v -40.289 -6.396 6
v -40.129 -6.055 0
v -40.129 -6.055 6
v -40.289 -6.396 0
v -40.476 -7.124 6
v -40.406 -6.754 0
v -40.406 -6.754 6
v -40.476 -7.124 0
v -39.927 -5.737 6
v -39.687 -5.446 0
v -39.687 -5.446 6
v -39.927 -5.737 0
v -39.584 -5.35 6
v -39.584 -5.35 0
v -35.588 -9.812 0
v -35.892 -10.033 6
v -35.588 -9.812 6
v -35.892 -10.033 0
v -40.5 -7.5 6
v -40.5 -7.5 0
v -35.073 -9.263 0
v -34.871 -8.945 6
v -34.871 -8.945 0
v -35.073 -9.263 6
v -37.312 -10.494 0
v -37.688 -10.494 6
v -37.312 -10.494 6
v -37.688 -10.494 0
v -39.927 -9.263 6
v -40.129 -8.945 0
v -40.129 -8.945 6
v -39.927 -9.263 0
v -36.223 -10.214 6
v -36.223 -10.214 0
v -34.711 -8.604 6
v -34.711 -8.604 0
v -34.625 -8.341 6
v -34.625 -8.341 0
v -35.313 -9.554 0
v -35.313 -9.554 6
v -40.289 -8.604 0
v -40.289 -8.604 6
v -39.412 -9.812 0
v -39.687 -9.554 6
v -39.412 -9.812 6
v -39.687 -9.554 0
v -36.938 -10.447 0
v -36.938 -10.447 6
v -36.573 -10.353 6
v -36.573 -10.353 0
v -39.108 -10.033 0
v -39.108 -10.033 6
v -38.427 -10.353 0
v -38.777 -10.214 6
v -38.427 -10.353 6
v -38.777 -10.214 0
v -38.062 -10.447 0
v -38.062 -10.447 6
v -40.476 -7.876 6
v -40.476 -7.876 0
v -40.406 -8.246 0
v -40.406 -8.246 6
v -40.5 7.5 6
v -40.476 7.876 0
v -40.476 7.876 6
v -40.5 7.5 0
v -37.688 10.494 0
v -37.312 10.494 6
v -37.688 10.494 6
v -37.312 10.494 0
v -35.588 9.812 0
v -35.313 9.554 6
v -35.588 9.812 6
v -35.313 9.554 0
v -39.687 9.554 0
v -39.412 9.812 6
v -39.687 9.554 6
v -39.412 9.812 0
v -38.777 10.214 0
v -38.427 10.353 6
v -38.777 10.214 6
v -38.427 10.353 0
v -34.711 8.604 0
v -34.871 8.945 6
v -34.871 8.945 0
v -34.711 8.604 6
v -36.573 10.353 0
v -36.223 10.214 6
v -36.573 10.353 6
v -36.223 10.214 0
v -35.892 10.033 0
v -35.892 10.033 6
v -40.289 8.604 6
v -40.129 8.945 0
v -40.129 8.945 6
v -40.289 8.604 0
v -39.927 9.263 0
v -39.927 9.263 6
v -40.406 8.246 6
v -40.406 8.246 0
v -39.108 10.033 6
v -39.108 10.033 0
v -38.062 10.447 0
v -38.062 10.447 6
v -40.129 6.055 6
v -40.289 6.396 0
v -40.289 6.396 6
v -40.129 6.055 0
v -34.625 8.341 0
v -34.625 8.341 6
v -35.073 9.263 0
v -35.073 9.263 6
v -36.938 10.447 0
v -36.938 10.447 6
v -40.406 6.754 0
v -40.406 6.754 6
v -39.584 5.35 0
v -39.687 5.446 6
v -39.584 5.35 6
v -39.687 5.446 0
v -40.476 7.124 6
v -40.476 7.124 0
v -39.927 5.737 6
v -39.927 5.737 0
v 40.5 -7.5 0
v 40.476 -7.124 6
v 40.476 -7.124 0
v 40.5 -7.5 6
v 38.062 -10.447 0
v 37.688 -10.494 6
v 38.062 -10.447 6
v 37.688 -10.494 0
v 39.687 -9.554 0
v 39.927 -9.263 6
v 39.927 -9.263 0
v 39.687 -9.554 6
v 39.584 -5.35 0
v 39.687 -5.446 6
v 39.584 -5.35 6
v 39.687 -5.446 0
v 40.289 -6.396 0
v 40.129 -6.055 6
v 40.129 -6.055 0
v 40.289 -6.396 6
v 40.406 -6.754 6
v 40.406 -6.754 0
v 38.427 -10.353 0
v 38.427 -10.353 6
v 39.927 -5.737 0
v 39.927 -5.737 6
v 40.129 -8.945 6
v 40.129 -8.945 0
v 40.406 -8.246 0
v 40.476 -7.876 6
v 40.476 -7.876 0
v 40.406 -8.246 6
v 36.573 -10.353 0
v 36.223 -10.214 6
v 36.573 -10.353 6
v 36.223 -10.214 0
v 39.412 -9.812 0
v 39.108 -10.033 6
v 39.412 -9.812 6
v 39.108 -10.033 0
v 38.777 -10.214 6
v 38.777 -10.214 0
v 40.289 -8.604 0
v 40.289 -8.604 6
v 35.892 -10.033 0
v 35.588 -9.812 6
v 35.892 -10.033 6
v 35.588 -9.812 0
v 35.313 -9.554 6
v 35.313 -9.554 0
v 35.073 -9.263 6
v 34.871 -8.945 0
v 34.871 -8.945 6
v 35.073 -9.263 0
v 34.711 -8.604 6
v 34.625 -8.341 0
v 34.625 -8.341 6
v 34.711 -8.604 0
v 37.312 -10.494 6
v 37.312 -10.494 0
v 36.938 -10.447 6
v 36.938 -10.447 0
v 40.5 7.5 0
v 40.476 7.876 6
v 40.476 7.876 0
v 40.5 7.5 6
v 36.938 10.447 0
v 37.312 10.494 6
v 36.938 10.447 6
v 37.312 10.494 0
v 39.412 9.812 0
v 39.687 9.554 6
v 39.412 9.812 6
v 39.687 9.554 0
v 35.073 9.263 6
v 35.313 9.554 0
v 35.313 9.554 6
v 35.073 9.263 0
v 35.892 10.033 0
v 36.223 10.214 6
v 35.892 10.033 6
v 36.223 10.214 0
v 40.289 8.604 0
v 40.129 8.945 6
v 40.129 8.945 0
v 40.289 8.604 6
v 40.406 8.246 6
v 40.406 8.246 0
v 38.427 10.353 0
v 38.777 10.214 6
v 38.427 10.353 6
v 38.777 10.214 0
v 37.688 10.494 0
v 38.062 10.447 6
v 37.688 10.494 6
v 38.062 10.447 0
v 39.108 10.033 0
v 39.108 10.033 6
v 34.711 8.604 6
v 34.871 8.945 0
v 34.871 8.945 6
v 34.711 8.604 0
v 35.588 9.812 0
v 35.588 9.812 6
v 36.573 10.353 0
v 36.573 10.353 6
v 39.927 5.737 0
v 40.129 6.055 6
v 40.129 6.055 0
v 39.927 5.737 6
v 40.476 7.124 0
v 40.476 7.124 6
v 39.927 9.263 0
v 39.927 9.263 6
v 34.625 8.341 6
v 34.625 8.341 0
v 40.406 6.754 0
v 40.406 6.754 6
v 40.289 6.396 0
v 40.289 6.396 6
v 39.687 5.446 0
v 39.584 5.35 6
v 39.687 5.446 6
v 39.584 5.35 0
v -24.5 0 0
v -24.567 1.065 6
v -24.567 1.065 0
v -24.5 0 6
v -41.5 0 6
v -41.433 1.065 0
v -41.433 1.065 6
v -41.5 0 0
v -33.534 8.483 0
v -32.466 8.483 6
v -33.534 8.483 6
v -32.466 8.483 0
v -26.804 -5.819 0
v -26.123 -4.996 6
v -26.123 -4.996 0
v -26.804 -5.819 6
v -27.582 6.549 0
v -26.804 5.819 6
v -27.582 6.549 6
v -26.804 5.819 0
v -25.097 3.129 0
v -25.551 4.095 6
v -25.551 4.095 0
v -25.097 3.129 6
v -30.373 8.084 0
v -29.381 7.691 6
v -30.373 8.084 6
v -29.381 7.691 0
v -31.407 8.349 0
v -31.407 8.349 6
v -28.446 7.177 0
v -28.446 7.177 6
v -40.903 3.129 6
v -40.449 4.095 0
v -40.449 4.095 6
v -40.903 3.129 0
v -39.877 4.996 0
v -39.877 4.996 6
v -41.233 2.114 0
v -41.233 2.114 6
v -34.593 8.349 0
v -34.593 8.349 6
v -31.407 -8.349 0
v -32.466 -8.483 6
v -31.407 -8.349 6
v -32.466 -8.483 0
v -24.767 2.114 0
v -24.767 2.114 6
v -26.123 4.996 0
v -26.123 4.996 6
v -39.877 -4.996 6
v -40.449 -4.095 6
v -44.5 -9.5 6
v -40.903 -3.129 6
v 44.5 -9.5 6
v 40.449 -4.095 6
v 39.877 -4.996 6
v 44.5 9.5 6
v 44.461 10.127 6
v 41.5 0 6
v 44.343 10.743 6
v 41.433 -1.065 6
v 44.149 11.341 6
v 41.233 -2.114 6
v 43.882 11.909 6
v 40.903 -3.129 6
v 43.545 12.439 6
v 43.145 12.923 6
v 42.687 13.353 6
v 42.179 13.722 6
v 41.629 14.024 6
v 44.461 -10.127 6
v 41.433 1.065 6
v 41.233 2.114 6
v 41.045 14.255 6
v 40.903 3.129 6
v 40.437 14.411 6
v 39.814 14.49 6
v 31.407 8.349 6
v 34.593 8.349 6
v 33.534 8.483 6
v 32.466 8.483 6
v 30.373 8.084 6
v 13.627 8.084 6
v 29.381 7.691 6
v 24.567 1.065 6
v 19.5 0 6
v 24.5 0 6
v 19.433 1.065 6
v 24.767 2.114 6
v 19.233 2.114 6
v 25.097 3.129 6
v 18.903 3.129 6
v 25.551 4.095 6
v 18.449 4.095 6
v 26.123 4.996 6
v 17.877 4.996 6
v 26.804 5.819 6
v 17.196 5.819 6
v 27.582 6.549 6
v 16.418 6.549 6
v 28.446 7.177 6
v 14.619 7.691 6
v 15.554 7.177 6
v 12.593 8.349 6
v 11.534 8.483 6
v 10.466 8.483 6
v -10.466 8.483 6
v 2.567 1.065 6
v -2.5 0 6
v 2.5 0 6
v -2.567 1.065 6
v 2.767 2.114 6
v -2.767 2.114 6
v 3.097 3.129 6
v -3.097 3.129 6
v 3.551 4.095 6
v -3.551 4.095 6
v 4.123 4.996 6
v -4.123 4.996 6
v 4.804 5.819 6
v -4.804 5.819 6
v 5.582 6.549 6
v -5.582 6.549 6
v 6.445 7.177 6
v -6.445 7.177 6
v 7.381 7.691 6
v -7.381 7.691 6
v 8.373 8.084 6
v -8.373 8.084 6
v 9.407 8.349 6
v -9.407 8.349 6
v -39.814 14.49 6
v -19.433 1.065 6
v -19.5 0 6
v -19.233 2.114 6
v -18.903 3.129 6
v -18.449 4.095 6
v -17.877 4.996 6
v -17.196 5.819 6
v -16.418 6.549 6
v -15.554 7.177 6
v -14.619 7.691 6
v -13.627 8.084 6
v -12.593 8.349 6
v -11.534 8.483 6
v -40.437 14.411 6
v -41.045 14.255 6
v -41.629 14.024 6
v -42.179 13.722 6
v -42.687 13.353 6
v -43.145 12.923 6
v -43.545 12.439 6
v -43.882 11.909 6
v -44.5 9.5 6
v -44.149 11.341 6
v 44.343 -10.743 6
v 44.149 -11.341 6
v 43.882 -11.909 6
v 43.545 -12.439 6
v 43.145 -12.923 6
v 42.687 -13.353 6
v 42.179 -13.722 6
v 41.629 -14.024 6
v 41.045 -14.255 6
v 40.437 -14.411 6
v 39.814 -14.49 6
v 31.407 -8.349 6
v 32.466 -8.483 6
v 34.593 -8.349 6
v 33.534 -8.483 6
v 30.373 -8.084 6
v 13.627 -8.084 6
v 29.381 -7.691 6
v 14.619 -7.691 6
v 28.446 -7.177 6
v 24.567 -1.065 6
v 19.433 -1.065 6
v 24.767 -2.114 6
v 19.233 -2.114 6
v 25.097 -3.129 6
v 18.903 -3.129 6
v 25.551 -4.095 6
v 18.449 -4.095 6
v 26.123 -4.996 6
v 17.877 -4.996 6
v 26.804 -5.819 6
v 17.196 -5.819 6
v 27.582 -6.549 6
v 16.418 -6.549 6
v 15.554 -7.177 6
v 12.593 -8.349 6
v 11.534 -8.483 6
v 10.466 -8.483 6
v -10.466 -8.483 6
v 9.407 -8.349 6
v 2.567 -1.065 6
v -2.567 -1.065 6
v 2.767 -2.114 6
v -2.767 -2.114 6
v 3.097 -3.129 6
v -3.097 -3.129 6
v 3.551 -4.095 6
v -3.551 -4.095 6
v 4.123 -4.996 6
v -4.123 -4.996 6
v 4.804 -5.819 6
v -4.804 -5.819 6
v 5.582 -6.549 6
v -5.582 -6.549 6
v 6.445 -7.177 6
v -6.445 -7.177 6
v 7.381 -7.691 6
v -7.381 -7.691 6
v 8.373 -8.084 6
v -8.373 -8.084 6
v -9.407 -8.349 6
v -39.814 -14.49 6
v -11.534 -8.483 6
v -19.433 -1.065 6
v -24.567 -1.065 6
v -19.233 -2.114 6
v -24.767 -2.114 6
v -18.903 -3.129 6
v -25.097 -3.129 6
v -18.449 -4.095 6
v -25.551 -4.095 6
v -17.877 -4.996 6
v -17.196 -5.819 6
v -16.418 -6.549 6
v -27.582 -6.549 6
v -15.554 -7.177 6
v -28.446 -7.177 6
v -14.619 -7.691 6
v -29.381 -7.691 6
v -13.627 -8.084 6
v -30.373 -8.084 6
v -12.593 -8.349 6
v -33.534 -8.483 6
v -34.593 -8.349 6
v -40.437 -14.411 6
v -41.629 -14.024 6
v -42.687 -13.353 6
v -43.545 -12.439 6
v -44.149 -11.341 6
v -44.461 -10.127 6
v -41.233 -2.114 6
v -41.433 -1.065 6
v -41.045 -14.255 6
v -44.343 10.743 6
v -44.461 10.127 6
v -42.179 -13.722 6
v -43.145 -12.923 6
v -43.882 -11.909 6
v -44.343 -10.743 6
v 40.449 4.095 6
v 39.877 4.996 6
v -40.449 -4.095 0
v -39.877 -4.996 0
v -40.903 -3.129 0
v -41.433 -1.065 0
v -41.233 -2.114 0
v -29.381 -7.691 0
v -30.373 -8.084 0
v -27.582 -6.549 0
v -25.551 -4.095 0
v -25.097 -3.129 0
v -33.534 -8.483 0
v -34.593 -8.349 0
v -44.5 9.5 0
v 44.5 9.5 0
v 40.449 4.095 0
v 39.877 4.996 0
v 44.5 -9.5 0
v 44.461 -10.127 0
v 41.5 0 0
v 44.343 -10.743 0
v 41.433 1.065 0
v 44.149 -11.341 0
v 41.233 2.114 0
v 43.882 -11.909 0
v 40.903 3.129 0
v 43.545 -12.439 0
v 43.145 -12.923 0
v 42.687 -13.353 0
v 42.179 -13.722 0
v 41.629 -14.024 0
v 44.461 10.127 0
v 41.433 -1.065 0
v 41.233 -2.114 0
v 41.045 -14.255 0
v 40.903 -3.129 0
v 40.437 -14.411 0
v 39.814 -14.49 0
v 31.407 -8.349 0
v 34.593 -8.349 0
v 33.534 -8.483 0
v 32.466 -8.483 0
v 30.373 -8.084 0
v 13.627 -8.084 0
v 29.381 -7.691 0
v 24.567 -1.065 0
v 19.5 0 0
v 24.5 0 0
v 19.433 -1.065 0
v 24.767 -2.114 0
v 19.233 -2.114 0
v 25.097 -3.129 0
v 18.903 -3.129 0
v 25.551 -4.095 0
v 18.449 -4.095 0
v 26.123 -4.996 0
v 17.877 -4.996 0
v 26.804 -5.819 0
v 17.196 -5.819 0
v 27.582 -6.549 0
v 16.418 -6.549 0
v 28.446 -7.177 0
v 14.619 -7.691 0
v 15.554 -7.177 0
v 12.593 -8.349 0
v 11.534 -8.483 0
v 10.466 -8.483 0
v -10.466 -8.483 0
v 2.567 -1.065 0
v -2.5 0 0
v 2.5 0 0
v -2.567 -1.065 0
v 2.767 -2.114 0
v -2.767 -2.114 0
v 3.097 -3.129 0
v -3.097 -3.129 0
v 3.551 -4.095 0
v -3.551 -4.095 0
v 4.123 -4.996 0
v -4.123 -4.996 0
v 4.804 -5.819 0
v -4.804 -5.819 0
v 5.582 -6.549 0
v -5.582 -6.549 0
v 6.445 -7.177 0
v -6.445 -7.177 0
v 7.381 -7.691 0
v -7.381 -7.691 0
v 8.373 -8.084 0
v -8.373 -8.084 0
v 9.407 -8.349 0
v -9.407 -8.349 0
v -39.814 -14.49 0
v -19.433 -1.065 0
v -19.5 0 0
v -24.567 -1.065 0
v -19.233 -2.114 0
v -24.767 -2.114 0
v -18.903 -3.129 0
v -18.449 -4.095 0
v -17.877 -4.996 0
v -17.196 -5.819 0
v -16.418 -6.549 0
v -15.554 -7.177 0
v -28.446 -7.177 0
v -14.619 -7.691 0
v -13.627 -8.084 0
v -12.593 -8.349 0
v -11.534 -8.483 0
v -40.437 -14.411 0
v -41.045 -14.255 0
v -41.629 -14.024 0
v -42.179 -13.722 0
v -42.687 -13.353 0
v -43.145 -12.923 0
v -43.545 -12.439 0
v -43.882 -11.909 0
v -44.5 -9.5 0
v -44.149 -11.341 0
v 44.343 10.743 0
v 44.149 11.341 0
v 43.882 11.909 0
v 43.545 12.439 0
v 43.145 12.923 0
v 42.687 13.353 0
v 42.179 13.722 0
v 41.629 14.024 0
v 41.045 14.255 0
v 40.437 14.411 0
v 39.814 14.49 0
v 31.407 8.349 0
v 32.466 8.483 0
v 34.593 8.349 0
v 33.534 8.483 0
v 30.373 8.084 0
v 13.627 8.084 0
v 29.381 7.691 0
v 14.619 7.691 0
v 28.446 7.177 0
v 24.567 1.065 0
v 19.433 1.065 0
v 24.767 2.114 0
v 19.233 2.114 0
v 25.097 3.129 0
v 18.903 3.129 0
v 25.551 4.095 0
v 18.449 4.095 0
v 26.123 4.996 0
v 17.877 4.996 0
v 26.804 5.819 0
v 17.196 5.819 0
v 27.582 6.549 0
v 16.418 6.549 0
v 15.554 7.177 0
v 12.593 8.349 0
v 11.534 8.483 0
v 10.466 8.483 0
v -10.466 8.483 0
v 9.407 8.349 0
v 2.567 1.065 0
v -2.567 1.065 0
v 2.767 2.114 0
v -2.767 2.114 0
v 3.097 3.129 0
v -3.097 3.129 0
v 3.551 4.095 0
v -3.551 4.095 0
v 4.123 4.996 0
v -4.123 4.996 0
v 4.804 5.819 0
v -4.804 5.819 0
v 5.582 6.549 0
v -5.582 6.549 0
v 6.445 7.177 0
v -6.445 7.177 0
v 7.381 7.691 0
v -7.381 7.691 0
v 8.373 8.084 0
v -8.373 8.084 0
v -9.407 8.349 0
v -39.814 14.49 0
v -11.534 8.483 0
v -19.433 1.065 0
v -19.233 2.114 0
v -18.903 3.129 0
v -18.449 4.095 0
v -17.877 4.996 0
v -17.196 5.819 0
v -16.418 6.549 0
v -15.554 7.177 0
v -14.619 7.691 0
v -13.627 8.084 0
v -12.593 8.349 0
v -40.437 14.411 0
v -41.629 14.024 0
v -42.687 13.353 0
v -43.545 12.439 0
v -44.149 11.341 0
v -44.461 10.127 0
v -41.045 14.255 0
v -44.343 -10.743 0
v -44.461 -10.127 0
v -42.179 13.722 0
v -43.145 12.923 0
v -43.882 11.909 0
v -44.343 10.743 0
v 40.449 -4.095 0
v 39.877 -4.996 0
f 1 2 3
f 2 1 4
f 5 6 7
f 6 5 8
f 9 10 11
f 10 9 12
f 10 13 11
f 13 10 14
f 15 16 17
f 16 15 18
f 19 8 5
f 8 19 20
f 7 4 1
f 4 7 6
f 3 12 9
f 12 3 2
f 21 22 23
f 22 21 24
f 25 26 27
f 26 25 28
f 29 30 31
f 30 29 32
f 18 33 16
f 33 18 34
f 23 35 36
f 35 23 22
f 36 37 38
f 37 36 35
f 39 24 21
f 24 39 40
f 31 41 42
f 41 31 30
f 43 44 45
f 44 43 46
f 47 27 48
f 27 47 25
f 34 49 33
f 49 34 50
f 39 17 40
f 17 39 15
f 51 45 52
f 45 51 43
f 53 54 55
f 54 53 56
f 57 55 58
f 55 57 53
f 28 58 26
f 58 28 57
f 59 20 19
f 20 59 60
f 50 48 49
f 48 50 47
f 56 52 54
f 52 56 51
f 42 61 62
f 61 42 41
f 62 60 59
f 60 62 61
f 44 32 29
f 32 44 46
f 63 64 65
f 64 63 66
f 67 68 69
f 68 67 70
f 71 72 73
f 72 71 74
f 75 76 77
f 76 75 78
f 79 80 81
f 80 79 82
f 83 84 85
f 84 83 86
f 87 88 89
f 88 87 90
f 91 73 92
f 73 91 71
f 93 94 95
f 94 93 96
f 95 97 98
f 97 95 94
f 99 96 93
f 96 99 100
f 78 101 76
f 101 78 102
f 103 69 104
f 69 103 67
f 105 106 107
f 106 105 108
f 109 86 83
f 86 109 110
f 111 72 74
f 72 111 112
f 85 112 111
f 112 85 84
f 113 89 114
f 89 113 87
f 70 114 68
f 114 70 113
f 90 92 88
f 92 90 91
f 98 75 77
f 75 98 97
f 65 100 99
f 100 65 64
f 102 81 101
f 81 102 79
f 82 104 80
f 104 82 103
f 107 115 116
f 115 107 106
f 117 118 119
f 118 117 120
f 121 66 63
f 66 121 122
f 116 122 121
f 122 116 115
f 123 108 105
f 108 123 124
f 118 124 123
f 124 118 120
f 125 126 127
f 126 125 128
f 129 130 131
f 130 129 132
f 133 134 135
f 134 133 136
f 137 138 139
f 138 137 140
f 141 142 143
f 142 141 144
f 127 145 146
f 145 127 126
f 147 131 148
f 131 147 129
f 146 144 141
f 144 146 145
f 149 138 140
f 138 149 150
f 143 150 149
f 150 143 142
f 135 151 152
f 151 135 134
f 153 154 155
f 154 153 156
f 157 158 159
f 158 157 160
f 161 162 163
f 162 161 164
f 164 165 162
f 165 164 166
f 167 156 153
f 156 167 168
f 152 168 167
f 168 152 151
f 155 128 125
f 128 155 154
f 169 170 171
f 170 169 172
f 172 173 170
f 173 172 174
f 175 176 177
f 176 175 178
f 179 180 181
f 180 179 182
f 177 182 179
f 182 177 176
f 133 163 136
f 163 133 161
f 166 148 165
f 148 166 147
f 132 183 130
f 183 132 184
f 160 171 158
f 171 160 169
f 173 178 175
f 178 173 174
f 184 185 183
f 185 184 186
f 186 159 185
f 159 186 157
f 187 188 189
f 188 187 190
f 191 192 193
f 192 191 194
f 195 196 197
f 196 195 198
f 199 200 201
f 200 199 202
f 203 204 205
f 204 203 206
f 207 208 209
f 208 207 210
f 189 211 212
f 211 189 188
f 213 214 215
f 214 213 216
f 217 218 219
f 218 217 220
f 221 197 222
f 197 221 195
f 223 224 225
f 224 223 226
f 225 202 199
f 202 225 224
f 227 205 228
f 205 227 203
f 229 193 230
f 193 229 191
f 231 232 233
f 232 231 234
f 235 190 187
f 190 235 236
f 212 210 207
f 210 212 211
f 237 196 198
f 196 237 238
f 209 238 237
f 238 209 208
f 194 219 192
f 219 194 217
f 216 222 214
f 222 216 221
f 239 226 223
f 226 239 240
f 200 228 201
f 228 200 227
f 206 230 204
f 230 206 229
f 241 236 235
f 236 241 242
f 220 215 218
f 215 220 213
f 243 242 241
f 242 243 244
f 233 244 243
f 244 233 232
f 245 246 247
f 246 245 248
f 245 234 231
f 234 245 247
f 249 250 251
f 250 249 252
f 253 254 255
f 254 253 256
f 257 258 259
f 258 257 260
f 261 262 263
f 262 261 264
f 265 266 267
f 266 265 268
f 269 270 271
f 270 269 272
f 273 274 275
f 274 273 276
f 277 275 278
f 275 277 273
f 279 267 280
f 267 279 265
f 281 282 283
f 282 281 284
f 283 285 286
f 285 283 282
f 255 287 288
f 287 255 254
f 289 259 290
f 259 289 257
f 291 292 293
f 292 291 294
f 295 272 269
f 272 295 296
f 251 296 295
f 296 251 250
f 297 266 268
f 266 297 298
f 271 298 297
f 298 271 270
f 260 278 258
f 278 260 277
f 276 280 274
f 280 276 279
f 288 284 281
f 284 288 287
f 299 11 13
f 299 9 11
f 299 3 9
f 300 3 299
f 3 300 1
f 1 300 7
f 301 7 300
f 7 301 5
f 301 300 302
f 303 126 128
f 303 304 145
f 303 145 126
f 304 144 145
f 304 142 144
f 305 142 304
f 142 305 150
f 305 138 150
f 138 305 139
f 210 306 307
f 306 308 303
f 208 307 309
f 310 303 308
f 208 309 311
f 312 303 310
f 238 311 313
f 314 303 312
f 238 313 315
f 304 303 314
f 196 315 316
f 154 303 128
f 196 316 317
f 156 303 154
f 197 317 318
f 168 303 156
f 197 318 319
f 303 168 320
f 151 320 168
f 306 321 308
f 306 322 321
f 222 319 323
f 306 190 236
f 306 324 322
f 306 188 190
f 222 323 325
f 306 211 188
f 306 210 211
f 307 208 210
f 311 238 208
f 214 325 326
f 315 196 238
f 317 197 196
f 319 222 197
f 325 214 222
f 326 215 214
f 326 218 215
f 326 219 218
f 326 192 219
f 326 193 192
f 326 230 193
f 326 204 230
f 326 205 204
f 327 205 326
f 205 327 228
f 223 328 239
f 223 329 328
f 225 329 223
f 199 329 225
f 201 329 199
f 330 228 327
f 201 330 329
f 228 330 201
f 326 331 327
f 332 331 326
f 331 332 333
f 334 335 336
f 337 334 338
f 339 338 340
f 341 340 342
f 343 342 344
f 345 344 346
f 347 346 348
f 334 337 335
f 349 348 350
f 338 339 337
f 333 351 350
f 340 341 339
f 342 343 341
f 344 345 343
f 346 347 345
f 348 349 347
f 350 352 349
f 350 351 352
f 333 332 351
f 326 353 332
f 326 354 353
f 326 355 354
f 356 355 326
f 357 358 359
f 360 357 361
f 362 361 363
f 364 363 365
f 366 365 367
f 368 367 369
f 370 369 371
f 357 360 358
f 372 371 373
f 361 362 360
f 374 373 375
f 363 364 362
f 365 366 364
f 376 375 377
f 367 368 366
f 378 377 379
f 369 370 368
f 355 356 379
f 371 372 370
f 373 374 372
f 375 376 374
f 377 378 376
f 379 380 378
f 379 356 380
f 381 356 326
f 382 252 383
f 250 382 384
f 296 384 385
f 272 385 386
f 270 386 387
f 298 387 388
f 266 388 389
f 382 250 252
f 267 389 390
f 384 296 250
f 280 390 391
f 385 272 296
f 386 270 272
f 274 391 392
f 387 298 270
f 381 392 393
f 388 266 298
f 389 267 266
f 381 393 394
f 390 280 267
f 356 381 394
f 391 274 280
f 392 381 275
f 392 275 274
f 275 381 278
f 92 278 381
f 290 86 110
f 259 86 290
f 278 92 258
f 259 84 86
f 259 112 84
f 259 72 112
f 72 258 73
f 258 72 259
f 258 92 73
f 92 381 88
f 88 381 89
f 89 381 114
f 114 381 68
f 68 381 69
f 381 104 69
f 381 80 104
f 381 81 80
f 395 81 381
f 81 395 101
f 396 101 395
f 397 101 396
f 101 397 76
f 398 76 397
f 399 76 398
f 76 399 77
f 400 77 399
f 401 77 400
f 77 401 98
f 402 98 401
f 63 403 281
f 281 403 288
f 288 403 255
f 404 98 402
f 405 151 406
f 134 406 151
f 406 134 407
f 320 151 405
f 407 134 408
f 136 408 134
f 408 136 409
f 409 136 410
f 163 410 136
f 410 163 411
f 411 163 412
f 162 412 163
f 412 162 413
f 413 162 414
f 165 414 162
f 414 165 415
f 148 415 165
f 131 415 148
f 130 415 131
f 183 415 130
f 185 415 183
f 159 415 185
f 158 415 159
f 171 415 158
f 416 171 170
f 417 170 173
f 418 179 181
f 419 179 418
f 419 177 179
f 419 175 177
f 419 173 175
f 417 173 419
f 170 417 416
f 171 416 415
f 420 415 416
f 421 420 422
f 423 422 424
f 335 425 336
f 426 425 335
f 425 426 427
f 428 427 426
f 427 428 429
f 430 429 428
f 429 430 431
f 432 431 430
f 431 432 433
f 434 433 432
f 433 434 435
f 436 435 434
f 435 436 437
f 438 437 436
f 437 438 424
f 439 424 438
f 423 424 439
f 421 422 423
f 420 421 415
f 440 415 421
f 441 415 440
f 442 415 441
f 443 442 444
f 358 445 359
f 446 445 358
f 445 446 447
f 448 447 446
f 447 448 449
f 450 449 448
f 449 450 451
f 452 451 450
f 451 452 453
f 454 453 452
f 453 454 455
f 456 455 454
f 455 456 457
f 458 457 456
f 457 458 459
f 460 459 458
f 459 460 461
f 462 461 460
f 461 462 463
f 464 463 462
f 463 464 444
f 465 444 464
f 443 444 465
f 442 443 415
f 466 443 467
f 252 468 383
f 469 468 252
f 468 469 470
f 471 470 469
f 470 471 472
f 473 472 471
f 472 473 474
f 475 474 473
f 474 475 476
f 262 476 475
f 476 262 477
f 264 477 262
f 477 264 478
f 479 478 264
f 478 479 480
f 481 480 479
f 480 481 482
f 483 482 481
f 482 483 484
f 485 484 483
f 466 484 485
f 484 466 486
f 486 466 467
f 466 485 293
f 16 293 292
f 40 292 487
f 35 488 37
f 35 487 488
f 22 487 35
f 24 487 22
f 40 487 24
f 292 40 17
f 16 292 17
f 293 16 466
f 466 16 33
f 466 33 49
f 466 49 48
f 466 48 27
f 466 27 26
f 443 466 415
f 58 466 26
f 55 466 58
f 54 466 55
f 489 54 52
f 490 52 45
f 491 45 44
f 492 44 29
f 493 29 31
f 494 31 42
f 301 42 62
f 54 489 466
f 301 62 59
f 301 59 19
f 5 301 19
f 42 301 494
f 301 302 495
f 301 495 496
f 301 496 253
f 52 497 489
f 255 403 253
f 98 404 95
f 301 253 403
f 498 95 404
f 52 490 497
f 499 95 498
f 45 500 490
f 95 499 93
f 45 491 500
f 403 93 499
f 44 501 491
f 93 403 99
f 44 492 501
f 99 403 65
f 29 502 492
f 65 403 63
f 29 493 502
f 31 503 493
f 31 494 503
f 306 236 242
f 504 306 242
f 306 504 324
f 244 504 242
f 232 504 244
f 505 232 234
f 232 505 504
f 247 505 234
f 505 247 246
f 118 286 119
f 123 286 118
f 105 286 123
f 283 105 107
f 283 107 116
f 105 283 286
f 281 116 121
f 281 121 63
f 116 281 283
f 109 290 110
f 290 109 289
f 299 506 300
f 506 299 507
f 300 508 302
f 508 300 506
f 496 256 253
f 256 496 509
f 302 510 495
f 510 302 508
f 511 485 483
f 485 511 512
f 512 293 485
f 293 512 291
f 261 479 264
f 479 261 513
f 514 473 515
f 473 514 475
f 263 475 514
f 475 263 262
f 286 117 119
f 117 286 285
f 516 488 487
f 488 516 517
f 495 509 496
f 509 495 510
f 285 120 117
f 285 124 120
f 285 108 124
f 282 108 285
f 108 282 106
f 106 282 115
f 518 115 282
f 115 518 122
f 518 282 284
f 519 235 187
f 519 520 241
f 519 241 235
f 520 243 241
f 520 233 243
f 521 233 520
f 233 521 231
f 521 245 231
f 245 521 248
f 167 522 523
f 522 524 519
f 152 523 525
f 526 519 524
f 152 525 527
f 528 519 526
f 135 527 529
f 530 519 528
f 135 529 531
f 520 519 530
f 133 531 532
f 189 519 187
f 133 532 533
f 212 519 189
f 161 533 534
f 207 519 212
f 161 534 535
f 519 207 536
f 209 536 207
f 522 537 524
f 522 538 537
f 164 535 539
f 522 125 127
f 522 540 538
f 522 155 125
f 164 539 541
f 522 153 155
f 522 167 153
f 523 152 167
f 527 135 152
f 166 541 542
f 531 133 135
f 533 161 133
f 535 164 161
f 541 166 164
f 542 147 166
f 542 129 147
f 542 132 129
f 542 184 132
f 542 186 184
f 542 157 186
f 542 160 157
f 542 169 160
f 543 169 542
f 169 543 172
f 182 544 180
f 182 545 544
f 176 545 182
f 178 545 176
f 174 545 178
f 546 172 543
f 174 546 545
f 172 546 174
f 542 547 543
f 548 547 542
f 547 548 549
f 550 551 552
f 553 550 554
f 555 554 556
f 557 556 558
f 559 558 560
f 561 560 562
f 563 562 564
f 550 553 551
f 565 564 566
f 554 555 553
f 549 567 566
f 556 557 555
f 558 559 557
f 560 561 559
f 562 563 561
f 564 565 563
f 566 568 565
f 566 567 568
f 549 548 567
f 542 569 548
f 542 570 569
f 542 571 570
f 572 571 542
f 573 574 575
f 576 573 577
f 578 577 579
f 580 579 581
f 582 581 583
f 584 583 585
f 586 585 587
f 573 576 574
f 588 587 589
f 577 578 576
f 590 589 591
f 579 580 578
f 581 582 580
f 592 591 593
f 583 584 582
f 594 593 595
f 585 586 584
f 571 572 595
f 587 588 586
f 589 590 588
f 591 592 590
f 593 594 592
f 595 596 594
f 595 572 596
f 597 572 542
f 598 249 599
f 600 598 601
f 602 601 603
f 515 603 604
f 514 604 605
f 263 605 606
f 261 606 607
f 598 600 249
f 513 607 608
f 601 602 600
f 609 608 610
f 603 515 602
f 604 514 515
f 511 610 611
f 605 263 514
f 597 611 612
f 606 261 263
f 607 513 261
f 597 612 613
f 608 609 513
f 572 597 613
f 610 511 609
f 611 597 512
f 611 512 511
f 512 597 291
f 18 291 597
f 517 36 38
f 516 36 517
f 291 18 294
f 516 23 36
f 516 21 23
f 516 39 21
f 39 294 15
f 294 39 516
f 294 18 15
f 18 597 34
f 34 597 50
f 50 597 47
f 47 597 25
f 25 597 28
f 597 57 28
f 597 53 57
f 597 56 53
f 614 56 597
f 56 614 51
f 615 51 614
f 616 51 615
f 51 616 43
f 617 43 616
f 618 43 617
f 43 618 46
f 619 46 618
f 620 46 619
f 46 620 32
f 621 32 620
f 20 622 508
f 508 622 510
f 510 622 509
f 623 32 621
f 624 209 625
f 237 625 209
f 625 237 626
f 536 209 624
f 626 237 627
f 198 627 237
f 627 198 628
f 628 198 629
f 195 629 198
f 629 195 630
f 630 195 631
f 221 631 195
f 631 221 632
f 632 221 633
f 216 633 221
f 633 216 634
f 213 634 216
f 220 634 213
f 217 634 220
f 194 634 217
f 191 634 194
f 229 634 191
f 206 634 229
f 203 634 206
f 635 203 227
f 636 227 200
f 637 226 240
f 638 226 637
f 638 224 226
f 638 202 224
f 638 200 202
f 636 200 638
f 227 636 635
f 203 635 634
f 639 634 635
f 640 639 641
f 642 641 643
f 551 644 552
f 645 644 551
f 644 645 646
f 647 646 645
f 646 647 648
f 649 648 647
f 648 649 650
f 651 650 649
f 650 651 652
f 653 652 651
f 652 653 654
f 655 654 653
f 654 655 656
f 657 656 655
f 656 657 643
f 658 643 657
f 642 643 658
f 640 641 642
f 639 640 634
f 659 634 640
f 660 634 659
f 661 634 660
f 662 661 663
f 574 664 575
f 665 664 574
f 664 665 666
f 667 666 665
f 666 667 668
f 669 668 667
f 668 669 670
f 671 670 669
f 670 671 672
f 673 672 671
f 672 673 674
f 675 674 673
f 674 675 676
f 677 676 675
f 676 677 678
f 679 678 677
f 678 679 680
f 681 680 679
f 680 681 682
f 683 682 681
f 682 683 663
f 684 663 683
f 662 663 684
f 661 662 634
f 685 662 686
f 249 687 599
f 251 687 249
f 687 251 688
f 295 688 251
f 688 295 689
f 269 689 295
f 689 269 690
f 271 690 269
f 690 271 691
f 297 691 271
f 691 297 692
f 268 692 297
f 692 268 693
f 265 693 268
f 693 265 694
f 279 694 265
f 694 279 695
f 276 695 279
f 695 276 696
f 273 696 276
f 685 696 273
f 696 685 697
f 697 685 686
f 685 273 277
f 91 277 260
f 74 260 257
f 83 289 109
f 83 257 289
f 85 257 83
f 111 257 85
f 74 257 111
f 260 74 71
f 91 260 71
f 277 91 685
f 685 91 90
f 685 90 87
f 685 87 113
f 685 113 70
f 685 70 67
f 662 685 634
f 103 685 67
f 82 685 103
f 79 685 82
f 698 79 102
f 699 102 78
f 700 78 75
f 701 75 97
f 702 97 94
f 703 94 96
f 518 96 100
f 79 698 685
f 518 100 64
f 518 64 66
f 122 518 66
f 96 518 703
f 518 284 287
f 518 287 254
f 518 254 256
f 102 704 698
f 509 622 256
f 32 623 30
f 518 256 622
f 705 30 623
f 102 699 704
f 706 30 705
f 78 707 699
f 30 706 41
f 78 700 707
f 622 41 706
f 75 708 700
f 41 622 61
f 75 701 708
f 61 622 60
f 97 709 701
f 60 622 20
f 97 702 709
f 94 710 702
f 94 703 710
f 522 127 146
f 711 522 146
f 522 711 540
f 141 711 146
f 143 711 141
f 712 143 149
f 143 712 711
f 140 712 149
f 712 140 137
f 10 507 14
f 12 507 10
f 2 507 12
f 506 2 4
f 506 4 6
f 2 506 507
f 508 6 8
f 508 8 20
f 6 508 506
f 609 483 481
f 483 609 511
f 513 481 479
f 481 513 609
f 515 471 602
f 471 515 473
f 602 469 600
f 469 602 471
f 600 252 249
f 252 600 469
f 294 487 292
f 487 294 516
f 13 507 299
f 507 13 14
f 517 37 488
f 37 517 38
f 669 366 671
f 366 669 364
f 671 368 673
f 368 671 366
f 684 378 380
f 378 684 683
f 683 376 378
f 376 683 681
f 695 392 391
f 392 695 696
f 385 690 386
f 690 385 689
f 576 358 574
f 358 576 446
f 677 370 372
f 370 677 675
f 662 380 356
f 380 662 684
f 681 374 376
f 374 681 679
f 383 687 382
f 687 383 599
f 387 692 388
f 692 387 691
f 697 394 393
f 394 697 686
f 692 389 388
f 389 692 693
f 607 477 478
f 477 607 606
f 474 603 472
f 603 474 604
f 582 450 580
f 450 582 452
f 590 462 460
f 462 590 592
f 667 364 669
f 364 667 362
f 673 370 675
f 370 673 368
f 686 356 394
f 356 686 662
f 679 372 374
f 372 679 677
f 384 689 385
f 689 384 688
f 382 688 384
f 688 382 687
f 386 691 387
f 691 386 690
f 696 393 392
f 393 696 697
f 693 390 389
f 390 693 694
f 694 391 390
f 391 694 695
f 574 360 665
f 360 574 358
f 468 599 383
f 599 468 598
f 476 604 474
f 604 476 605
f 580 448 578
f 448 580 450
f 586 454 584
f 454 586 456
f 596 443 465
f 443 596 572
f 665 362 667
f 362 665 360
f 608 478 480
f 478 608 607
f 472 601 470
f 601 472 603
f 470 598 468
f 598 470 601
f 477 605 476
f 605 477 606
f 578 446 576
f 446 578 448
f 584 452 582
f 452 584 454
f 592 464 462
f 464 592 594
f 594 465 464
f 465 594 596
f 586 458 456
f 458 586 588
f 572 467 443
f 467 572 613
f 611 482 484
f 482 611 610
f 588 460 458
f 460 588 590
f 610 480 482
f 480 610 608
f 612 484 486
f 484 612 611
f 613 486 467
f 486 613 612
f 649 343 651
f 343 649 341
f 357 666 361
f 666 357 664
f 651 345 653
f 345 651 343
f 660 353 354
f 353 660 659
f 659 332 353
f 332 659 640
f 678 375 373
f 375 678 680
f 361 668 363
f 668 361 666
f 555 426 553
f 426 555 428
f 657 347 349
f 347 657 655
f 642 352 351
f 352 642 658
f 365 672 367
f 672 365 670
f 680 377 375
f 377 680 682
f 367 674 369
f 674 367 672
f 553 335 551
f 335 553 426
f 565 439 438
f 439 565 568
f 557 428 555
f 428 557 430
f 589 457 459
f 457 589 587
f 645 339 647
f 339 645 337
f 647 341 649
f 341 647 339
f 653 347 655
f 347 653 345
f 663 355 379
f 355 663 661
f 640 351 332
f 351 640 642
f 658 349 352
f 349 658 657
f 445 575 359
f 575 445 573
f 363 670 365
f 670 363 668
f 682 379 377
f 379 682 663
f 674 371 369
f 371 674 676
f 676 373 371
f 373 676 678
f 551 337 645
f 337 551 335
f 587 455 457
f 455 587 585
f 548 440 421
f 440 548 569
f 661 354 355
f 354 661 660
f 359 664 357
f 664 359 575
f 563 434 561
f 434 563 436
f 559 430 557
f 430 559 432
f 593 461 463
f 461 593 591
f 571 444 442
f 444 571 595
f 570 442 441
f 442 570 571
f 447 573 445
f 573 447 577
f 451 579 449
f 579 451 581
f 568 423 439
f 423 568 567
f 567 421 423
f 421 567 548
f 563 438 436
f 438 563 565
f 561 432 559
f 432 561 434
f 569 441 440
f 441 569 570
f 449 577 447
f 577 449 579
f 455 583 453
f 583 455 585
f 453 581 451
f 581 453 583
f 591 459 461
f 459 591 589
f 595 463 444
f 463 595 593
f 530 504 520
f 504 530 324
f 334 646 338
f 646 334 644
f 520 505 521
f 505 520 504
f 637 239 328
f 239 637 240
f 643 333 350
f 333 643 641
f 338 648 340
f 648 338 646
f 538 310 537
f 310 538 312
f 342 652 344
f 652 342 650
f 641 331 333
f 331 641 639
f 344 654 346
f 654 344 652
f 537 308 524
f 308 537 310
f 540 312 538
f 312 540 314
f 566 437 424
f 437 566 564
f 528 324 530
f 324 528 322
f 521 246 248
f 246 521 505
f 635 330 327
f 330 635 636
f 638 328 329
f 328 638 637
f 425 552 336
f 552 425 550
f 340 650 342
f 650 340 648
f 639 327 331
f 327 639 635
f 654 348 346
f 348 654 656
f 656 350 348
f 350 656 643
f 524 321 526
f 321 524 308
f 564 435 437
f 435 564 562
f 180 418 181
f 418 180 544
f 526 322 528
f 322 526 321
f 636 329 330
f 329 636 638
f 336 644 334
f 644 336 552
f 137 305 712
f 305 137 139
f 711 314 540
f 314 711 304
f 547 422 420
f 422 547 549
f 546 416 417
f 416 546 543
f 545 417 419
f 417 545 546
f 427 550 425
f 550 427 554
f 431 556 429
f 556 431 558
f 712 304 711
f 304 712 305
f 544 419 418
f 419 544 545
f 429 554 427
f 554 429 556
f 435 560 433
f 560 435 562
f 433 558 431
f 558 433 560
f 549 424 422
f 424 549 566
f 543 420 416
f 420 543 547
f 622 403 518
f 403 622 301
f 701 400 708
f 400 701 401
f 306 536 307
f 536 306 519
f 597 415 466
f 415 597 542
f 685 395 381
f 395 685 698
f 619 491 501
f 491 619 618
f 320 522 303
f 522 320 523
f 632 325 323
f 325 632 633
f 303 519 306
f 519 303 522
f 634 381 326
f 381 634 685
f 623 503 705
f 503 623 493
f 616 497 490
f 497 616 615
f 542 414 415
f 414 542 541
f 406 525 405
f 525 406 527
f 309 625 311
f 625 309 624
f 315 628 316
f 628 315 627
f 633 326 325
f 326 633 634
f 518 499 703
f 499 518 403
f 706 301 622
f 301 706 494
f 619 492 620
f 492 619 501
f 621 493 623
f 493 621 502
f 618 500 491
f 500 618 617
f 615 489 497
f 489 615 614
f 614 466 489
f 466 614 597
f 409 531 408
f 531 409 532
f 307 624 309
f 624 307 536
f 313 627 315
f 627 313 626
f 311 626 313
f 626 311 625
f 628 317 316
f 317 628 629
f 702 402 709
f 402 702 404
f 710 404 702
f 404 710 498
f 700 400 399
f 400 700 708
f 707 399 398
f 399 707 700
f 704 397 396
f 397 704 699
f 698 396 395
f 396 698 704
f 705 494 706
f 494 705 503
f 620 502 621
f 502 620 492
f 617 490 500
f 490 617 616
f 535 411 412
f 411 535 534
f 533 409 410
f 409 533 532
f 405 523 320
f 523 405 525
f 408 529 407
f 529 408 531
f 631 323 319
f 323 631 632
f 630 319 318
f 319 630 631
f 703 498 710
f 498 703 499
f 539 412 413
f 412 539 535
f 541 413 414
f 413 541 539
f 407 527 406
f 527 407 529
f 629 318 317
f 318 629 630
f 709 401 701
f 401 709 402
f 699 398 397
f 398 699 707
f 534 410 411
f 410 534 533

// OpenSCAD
$fn = 50;


difference() {
	union() {
		hull() {
			translate(v = [-39.5000000000, 9.5000000000, 0]) {
				cylinder(h = 6, r = 5);
			}
			translate(v = [39.5000000000, 9.5000000000, 0]) {
				cylinder(h = 6, r = 5);
			}
			translate(v = [-39.5000000000, -9.5000000000, 0]) {
				cylinder(h = 6, r = 5);
			}
			translate(v = [39.5000000000, -9.5000000000, 0]) {
				cylinder(h = 6, r = 5);
			}
		}
	}
	union() {
		#translate(v = [-37.5000000000, -7.5000000000, -100.0000000000]) {
			cylinder(h = 200, r = 3.0000000000);
		}
		#translate(v = [-37.5000000000, 7.5000000000, -100.0000000000]) {
			cylinder(h = 200, r = 3.0000000000);
		}
		#translate(v = [37.5000000000, -7.5000000000, -100.0000000000]) {
			cylinder(h = 200, r = 3.0000000000);
		}
		#translate(v = [37.5000000000, 7.5000000000, -100.0000000000]) {
			cylinder(h = 200, r = 3.0000000000);
		}
		#translate(v = [-33.0000000000, 0, 0]) {
			cylinder(h = 6, r = 8.5000000000);
		}
		#translate(v = [-11.0000000000, 0, 0]) {
			cylinder(h = 6, r = 8.5000000000);
		}
		#translate(v = [11.0000000000, 0, 0]) {
			cylinder(h = 6, r = 8.5000000000);
		}
		#translate(v = [33.0000000000, 0, 0]) {
			cylinder(h = 6, r = 8.5000000000);
		}
	}
}
